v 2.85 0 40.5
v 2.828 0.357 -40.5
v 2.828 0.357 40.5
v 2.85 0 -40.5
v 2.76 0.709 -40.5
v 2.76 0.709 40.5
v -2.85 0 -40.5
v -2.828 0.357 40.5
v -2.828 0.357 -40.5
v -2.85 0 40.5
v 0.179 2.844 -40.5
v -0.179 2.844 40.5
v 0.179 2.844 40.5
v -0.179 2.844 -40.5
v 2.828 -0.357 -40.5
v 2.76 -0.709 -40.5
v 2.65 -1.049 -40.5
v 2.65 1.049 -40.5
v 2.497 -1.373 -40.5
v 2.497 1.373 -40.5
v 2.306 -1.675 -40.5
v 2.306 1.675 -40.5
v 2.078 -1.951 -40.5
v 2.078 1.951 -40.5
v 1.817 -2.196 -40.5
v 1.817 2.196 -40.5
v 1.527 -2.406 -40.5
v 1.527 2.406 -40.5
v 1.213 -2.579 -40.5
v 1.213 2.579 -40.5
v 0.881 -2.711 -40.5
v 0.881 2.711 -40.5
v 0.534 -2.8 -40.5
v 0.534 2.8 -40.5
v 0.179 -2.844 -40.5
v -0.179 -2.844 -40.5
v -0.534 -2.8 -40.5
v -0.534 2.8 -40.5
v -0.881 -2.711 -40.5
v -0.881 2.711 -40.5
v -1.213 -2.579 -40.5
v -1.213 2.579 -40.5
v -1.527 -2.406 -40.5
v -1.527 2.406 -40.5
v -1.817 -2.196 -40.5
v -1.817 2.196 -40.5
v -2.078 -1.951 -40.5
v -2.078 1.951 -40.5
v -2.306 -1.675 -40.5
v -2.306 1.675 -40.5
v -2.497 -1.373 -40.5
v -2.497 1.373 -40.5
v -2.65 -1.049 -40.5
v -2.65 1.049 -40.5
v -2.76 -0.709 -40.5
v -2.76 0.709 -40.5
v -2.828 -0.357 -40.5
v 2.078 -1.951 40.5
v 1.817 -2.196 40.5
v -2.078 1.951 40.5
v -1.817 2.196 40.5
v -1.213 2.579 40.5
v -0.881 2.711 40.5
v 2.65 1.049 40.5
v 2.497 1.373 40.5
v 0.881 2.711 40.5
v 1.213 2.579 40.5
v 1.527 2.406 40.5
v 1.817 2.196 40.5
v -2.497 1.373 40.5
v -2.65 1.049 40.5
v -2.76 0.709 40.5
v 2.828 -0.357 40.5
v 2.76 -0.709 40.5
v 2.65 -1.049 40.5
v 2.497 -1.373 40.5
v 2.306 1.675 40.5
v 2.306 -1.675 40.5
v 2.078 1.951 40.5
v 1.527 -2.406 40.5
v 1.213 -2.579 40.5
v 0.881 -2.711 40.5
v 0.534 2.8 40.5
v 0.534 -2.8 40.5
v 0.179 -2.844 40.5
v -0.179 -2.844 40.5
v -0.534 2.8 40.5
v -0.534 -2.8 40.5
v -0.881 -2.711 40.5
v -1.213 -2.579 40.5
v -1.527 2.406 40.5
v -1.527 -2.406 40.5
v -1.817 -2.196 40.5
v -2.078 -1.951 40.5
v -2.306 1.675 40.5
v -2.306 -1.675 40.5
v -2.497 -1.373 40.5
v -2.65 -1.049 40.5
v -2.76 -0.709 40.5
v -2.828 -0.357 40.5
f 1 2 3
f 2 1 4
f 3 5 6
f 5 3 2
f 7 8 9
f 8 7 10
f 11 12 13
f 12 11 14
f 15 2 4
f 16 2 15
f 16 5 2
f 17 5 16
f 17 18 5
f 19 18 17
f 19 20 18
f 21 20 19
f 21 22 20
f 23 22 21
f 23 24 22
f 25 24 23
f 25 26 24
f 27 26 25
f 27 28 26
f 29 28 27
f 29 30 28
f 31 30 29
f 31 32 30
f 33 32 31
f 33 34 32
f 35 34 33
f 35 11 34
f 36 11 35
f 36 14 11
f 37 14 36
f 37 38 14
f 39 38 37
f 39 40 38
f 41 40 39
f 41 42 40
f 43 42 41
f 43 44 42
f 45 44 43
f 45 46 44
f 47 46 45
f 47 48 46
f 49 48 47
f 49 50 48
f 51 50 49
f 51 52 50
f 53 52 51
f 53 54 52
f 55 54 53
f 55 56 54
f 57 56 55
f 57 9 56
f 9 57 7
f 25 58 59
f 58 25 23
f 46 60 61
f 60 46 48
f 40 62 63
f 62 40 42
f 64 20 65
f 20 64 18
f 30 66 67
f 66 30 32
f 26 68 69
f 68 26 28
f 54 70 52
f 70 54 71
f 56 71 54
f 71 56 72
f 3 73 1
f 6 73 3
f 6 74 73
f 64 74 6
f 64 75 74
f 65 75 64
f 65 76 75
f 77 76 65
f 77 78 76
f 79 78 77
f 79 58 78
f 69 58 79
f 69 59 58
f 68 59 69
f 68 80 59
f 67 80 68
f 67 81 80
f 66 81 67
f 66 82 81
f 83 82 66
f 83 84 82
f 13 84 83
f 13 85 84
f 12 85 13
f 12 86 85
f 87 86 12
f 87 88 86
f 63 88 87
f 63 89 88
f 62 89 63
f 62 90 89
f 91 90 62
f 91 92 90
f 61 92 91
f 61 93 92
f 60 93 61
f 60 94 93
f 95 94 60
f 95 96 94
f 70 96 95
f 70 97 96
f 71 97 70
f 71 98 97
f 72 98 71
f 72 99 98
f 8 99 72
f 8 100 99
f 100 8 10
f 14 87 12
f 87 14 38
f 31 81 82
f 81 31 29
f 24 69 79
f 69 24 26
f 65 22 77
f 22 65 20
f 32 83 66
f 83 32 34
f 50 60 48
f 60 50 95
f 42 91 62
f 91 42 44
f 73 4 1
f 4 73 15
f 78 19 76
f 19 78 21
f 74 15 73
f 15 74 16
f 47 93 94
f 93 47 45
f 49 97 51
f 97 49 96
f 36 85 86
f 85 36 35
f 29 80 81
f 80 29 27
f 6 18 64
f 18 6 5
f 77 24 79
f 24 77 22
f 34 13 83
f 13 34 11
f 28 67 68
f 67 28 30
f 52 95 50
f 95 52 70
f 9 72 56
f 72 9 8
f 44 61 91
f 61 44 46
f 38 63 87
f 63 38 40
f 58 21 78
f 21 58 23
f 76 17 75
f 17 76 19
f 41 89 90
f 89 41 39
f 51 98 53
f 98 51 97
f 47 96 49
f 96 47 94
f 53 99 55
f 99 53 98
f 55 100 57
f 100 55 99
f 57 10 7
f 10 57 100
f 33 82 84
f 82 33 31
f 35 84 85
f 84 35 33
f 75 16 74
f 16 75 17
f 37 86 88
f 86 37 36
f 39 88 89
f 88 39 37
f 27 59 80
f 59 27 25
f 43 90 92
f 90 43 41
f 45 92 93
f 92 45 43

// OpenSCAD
$fn = 50;


difference() {
	union() {
		translate(v = [0, 0, -40.5000000000]) {
			cylinder(h = 81, r = 2.8500000000);
		}
	}
	union() {
		translate(v = [0, 0, -100.0000000000]) {
			cylinder(h = 200, r = 0);
		}
	}
}
